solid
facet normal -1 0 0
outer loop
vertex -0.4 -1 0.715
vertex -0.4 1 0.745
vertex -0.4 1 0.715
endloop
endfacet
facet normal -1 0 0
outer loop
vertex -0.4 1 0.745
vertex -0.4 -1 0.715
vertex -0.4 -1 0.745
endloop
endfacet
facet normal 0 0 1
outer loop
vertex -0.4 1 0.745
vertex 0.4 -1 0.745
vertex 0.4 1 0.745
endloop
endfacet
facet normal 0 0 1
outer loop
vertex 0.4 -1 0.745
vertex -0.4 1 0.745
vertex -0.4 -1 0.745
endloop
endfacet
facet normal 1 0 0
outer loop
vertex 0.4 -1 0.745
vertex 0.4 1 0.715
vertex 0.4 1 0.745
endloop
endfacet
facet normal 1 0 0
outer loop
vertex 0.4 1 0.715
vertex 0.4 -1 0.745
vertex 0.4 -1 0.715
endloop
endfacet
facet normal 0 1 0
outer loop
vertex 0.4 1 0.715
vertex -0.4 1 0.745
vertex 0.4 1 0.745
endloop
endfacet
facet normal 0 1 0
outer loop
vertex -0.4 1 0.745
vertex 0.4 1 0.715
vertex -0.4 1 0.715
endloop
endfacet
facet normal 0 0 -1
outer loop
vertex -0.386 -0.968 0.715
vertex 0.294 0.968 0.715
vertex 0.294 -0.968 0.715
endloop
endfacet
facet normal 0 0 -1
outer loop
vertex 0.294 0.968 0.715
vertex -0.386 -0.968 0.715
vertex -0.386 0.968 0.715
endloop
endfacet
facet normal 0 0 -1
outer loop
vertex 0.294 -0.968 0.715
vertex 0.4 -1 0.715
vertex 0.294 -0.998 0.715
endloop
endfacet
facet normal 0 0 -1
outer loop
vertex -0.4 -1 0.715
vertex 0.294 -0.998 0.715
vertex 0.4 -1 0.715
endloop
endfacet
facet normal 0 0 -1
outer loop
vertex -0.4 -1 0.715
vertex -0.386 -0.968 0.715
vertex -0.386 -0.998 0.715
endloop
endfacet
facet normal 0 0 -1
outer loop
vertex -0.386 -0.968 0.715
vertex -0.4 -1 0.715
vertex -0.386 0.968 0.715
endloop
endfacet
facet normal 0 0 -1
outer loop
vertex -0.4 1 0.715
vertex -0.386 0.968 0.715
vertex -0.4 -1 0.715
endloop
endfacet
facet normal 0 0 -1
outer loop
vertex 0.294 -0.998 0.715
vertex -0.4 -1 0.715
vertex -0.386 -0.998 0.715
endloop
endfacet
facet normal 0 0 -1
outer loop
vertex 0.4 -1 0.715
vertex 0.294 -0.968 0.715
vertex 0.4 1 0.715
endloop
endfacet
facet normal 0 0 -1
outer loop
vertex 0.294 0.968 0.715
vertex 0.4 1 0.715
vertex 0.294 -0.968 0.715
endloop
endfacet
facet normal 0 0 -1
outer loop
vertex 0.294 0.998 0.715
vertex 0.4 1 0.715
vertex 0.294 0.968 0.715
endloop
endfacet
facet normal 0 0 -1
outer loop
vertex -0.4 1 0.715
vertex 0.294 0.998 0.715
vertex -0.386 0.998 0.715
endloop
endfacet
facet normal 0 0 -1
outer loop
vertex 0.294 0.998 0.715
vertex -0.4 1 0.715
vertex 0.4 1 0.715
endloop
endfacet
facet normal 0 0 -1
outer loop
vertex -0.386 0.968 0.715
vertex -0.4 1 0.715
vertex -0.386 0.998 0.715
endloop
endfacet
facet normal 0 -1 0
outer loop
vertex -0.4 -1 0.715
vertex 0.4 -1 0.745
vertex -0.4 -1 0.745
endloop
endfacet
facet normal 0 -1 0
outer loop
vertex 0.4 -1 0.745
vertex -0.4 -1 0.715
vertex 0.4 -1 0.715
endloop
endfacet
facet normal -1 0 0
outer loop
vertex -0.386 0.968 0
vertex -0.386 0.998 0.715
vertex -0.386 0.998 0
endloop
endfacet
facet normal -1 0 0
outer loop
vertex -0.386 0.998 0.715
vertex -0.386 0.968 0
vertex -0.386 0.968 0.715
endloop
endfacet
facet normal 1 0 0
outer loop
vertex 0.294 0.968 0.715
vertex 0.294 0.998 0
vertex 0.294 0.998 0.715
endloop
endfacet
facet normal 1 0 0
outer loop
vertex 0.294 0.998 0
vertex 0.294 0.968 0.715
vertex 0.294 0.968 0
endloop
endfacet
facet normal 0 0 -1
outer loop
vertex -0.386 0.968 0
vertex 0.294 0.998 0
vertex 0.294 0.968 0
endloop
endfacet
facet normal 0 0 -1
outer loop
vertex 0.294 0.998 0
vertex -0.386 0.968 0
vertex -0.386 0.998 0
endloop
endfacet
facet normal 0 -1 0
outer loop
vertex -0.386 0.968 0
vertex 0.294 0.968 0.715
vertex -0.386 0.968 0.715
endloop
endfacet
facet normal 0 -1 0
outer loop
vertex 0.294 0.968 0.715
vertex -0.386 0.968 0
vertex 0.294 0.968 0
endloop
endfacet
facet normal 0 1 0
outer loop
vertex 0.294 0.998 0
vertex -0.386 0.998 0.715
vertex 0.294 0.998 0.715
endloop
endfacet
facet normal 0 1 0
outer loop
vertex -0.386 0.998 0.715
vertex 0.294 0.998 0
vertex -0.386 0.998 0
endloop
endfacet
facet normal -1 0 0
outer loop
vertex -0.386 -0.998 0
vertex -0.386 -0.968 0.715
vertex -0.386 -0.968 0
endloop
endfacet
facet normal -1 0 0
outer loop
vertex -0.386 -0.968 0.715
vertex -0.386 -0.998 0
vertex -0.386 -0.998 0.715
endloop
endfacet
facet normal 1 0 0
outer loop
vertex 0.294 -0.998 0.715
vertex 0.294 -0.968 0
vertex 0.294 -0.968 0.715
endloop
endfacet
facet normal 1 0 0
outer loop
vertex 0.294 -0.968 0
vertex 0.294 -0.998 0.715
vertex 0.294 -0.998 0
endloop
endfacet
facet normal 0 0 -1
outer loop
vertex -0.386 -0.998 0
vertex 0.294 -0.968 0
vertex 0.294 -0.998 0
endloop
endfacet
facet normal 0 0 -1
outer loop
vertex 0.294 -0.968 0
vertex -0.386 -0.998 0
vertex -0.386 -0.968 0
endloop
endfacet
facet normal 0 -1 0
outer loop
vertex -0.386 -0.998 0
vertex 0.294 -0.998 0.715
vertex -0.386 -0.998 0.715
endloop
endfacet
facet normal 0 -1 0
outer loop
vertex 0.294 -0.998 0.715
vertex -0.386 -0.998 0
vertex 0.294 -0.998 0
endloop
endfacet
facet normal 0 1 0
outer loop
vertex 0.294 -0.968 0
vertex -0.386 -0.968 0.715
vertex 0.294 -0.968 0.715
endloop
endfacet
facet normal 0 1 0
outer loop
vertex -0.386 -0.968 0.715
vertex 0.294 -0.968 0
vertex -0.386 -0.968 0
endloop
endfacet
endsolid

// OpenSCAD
module a() { 
    translate([(800 - 680) / -2 + 14, 2000 / 2 - 15 - 2, -730/2]) cube([680, 30, 730], true);
};

scale([0.001, 0.001, 0.001]){

translate([0,0,730/1]) {

cube([800, 2000, 30], true);


a();
mirror([0,1,0]) a();

}

}
